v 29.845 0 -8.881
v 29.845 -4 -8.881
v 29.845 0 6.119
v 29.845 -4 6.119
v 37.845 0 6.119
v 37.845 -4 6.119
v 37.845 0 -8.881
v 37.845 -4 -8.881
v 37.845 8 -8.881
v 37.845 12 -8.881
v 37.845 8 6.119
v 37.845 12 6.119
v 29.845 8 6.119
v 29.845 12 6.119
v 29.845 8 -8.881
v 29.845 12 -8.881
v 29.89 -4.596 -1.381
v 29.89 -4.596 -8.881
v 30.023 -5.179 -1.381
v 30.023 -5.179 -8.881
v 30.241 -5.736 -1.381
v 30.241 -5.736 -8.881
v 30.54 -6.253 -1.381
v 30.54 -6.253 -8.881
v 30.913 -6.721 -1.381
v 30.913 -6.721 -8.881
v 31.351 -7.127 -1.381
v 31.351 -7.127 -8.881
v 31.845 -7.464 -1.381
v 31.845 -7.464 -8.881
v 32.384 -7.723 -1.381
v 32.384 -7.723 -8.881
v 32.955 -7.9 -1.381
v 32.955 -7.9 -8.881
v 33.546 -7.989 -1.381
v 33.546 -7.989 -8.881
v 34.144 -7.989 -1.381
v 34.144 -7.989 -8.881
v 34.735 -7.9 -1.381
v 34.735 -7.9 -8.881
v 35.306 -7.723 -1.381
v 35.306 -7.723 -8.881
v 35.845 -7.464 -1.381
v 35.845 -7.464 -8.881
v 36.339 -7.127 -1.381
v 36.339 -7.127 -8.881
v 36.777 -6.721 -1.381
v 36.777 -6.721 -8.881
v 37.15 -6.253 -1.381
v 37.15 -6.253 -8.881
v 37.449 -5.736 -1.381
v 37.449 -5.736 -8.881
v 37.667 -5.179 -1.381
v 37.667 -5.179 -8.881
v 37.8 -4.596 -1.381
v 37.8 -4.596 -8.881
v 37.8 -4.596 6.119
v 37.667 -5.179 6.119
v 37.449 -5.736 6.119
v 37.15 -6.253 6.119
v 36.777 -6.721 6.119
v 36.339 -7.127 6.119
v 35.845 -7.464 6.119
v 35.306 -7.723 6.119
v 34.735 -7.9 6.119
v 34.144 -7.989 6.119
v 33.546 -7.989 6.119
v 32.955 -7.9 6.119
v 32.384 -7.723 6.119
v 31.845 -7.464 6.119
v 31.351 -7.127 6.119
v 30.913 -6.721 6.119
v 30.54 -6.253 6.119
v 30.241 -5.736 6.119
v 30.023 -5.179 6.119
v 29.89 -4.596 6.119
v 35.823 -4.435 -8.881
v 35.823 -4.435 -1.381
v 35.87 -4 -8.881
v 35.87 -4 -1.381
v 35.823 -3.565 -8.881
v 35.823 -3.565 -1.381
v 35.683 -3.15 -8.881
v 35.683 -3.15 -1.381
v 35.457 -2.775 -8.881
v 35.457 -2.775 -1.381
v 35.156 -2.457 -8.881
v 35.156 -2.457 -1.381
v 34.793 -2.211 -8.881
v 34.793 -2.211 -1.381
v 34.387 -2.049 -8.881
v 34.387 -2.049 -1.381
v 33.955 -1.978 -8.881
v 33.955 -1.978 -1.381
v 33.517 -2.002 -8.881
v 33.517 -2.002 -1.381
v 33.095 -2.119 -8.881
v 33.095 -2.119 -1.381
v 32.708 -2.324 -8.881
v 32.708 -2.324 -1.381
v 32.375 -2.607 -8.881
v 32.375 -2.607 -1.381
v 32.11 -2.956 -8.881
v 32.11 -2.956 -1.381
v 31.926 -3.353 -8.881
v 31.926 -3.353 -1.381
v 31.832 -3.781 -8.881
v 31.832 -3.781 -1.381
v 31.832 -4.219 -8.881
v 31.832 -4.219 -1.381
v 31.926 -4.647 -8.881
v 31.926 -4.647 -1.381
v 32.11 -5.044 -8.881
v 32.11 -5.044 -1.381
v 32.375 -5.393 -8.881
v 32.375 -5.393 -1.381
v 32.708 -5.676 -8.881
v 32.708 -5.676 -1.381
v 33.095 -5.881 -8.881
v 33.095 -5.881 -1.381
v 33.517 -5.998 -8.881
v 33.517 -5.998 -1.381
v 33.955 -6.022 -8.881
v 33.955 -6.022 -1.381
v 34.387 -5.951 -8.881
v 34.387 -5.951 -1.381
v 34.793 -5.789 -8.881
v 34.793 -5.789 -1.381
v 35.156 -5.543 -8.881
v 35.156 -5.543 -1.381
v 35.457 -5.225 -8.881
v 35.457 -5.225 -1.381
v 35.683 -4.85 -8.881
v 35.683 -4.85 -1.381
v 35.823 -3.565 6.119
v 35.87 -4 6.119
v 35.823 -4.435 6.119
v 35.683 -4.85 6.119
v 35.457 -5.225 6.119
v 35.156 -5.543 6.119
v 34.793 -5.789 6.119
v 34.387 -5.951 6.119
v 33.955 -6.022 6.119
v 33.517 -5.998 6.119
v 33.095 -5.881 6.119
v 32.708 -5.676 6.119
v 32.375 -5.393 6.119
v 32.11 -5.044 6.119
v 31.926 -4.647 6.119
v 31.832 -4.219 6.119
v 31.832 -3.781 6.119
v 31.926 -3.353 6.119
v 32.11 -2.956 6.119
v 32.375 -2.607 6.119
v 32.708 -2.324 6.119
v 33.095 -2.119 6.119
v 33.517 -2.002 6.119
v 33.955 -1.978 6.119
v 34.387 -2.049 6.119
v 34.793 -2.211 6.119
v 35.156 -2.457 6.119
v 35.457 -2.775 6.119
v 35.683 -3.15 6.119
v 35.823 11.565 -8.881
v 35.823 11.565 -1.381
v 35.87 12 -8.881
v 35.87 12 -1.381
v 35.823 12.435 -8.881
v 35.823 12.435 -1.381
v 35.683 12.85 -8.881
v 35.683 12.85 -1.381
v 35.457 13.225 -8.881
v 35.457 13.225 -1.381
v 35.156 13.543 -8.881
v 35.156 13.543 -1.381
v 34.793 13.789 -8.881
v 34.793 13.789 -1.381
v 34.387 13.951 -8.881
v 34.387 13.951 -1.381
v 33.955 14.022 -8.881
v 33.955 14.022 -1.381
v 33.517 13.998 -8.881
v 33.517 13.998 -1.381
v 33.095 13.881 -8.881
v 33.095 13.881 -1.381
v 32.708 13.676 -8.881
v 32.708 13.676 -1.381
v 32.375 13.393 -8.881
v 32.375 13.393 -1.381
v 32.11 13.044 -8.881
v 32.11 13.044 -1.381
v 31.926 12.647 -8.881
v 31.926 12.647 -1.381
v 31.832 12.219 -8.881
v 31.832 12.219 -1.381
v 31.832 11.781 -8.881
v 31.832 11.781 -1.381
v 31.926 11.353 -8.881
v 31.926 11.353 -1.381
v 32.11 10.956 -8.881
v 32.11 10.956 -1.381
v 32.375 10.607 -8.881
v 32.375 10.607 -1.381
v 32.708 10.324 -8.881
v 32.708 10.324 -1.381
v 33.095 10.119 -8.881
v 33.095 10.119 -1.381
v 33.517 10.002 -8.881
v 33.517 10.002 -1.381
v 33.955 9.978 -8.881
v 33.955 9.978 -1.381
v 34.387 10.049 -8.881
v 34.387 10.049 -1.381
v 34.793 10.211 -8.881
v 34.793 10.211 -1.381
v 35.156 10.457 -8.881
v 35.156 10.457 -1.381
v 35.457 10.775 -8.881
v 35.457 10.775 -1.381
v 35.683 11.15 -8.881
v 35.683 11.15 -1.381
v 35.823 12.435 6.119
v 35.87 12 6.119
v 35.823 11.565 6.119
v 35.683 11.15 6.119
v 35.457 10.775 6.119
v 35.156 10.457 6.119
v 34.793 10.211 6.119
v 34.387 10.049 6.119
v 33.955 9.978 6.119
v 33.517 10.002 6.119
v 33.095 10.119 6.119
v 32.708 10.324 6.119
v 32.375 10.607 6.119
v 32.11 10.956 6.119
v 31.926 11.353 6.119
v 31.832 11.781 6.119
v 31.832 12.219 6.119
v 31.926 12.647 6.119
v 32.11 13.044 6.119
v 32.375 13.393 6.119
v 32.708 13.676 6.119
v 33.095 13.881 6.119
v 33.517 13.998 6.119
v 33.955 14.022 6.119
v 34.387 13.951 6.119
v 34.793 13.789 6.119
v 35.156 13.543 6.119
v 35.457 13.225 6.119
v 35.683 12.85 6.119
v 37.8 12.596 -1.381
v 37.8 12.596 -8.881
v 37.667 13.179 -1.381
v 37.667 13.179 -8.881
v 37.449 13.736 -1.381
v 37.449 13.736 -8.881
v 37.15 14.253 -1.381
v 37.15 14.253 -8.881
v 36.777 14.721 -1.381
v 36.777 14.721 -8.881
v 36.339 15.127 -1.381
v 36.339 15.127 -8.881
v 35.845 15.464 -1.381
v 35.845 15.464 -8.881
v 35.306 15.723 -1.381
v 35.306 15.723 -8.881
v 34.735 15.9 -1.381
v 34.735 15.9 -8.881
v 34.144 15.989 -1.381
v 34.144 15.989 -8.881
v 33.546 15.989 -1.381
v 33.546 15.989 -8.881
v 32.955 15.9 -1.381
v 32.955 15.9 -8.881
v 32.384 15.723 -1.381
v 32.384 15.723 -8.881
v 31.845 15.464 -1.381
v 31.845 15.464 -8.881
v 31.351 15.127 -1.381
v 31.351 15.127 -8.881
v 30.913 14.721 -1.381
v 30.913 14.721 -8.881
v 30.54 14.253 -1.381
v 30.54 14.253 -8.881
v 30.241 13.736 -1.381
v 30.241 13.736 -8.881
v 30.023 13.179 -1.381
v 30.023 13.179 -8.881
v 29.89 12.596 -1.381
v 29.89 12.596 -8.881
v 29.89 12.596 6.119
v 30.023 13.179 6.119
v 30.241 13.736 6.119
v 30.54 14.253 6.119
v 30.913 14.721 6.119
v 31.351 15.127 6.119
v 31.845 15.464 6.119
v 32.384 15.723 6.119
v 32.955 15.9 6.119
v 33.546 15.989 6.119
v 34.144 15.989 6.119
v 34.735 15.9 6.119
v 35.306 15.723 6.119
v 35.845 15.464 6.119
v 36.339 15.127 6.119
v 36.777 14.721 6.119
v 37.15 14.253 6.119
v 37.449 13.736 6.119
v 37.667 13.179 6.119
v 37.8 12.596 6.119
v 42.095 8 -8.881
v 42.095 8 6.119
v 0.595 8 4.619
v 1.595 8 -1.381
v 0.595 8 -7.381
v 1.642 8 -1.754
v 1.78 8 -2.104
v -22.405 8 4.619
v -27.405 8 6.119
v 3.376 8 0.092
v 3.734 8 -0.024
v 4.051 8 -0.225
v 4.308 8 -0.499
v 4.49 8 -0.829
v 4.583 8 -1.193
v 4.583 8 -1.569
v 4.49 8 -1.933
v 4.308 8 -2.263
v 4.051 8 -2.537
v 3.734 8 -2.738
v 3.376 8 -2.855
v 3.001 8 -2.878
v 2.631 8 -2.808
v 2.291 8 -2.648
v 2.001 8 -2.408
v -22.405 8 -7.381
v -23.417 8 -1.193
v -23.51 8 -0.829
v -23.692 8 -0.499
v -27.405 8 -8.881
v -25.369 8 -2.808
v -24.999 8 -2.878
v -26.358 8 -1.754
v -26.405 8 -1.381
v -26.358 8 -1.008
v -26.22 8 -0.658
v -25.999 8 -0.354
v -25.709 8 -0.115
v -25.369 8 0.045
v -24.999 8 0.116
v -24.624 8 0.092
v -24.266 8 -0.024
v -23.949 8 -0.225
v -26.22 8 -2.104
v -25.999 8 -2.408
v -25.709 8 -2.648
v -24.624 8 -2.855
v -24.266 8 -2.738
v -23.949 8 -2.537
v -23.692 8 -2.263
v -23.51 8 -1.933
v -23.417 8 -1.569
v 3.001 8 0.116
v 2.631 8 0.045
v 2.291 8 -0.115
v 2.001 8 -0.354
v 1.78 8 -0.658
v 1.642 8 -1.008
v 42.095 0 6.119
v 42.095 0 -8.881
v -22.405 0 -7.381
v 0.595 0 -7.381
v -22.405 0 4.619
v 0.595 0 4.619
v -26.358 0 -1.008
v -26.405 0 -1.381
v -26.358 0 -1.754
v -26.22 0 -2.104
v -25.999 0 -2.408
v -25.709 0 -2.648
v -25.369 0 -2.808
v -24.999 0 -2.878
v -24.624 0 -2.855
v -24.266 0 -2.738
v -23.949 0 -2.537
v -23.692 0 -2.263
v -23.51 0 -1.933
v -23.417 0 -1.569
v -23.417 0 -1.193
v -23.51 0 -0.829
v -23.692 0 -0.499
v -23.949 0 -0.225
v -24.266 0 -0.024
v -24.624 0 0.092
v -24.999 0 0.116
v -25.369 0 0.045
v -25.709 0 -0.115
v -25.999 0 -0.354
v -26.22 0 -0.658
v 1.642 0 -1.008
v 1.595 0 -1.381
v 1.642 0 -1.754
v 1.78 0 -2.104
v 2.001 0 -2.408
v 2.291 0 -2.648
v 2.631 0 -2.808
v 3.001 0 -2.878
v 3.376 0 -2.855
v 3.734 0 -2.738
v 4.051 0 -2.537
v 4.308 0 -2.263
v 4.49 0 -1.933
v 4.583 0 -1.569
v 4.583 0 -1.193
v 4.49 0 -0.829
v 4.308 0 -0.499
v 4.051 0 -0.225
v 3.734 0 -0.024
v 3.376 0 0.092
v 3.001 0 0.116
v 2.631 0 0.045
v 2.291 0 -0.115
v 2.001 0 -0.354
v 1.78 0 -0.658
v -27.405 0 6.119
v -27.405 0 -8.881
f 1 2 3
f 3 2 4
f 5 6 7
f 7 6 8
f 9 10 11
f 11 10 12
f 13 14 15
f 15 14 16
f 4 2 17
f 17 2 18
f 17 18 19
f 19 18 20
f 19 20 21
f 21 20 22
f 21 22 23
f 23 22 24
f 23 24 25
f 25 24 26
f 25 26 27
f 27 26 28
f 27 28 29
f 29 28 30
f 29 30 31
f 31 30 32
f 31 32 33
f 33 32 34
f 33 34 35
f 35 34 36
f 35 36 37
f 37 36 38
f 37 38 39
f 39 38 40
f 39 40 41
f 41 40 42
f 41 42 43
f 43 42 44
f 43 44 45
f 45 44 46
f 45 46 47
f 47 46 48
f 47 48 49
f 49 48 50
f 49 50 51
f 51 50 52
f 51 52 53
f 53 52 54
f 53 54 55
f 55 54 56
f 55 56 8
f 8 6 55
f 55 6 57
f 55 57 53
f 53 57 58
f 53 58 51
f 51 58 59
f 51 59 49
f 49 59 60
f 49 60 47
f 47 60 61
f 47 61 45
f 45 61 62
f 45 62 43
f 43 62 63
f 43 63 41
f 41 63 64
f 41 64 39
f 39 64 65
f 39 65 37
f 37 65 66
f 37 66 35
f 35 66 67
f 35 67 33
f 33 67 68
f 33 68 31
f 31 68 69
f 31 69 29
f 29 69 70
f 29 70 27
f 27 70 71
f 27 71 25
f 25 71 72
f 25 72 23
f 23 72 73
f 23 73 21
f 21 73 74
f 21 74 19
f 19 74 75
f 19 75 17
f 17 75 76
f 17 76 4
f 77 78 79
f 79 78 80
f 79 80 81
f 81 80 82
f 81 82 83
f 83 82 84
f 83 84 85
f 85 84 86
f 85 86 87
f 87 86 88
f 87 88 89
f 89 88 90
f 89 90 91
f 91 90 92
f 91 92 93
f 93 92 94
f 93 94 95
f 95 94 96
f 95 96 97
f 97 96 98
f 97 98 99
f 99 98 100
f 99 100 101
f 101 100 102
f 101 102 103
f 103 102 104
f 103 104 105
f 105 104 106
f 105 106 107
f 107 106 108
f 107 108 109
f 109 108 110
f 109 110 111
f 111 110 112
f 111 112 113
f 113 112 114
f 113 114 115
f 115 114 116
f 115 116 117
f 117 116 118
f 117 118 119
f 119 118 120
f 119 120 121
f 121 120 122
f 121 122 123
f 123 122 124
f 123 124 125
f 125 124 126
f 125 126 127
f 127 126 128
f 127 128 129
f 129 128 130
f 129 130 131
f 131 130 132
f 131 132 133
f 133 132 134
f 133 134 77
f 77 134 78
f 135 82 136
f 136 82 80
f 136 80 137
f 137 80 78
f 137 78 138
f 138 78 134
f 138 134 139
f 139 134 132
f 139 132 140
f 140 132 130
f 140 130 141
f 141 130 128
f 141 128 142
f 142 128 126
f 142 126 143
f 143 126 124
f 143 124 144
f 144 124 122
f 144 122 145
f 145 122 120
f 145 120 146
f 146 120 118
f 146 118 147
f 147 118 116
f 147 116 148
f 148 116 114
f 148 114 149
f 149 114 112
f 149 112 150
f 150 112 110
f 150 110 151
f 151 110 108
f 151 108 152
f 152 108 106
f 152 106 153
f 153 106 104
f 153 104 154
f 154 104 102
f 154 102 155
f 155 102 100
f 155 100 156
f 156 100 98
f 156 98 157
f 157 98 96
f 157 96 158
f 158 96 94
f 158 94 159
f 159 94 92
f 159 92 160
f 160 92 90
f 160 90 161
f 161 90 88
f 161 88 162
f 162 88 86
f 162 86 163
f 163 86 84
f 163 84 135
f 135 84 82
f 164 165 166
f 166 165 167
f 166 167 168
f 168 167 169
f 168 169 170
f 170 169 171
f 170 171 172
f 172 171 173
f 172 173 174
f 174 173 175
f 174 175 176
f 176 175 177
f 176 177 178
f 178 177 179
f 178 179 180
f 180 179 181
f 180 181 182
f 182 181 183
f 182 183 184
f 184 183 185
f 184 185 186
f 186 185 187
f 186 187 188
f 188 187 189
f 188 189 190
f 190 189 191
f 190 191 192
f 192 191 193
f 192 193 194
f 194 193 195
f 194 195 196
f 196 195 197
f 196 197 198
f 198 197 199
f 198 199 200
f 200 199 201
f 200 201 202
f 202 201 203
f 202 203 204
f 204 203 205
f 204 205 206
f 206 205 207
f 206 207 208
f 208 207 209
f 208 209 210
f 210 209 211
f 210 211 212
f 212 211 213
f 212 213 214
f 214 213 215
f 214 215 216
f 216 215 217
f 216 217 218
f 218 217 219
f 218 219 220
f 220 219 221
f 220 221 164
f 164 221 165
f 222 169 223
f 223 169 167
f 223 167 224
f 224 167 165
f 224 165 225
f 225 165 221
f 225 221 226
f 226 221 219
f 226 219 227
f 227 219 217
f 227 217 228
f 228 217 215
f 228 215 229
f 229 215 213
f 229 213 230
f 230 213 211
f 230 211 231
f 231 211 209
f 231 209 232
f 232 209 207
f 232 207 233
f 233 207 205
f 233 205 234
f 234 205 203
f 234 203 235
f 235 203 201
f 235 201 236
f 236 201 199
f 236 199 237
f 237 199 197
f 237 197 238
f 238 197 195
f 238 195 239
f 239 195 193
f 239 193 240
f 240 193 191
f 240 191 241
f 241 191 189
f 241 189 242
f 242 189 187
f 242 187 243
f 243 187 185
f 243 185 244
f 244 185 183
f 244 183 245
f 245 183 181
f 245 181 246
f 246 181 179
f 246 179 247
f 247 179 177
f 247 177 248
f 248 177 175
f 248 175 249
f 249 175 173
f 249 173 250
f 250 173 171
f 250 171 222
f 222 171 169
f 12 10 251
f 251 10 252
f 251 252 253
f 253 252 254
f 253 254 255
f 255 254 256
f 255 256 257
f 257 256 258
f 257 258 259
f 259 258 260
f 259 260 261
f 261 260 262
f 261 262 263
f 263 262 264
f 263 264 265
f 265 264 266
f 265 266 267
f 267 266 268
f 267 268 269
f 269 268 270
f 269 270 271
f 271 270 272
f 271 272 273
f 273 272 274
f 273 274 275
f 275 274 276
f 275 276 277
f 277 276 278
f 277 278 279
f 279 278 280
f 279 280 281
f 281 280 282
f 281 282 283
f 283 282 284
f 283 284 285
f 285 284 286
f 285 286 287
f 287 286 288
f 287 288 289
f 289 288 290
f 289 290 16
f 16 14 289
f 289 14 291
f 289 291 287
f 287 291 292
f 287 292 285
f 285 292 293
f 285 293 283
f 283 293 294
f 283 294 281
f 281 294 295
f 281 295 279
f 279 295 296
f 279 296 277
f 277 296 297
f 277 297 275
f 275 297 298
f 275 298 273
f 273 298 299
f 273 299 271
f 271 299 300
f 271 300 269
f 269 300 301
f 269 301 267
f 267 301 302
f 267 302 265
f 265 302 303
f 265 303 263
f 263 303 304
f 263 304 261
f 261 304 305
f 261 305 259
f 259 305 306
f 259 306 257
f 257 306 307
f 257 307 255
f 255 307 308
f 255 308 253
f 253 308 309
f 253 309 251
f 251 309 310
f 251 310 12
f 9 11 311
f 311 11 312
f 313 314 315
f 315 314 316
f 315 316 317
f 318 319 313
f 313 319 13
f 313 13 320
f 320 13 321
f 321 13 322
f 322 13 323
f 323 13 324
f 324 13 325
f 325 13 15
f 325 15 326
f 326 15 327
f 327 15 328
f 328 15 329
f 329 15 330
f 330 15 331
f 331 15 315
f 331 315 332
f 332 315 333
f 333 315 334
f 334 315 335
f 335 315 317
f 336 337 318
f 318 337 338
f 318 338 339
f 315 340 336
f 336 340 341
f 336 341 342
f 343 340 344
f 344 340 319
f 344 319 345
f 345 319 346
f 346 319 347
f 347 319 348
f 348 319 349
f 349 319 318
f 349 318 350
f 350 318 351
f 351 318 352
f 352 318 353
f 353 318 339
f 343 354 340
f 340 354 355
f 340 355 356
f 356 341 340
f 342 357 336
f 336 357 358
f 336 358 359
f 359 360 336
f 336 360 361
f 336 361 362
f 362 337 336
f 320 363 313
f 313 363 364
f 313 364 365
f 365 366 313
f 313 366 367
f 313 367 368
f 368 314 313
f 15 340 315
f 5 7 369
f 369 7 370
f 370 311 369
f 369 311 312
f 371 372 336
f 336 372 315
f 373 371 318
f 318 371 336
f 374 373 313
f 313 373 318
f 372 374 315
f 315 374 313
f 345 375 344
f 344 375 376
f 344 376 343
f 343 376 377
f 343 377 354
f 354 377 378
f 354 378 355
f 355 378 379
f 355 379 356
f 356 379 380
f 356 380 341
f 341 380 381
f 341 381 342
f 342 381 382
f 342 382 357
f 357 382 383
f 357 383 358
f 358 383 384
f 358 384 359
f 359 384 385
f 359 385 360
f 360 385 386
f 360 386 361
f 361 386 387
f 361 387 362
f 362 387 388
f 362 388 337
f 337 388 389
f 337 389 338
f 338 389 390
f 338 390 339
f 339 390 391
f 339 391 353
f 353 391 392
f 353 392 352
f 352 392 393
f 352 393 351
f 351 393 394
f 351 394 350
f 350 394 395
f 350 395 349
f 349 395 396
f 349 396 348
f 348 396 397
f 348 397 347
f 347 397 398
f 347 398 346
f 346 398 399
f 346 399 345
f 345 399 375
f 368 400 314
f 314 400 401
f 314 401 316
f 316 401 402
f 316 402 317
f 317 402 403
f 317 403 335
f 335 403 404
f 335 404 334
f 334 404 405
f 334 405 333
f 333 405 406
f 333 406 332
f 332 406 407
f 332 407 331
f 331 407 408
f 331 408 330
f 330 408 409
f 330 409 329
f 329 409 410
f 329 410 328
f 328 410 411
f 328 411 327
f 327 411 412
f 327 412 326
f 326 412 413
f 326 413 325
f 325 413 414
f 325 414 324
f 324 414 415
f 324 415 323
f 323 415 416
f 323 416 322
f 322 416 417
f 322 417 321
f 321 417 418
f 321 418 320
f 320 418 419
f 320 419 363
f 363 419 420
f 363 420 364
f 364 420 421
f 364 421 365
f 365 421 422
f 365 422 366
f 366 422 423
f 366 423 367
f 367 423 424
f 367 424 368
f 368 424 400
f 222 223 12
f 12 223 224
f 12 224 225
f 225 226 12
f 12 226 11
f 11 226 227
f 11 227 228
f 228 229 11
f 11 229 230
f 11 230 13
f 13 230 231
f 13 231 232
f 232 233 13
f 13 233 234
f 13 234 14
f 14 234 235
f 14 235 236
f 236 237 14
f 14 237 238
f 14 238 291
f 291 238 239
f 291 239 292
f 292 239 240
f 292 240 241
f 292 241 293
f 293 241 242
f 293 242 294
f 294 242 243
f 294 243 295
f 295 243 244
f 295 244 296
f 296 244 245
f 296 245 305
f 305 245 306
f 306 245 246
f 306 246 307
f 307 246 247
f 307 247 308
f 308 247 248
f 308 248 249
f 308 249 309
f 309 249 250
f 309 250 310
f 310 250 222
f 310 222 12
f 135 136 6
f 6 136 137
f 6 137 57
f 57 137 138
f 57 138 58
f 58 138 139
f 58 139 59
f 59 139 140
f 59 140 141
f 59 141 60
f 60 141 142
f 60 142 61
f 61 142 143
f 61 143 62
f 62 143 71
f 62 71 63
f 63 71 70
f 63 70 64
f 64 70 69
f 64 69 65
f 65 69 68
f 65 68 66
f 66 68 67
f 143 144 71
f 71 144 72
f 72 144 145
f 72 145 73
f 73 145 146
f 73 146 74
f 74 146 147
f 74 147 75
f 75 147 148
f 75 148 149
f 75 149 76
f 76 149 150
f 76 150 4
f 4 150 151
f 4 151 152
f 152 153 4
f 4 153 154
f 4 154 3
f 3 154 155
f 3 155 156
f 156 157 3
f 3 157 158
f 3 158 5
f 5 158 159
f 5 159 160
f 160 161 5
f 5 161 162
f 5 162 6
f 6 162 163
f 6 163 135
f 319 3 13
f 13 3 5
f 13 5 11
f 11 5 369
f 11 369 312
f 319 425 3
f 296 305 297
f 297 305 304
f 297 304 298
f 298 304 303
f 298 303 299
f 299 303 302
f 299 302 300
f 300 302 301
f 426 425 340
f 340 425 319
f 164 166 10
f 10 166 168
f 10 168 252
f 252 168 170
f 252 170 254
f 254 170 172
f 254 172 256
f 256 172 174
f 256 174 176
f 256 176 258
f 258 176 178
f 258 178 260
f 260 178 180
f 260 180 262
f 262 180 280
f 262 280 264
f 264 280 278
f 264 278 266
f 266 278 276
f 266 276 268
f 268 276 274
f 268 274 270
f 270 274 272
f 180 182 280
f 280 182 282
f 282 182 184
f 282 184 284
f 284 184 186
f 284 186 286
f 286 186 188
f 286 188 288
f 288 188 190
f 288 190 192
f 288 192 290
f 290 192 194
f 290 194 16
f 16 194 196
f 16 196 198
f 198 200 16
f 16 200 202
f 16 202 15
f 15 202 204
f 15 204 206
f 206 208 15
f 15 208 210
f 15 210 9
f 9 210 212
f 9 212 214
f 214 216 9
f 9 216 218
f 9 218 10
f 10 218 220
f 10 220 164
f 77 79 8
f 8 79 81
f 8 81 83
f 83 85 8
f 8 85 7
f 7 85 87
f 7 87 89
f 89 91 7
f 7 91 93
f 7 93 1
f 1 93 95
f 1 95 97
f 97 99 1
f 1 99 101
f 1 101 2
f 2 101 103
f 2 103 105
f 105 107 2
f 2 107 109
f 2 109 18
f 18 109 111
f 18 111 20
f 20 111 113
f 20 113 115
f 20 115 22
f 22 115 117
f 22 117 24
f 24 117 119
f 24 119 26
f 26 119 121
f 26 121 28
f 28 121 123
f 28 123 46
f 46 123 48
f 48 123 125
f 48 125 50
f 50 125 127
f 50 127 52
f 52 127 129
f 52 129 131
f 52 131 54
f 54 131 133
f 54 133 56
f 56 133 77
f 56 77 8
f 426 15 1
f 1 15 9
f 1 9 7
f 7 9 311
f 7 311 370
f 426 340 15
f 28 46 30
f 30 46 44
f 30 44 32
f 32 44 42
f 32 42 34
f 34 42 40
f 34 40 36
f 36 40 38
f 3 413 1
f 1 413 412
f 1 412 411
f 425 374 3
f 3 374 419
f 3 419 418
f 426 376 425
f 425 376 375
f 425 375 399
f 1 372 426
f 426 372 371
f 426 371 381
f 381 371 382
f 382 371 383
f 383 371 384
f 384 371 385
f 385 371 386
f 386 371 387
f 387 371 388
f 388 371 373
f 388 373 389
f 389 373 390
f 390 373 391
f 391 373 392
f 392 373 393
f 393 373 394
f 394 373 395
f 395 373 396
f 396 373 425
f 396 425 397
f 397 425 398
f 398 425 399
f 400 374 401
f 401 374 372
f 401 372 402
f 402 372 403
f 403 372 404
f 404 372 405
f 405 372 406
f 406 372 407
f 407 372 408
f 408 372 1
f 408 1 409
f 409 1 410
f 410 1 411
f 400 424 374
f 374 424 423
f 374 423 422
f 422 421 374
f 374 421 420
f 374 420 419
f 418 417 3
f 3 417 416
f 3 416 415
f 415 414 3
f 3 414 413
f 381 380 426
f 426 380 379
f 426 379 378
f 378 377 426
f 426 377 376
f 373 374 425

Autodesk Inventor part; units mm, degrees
ref_plane "YZ Plane" through (0, 0, 0) normal (1, 0, 0) x (0, 1, 0)
ref_plane "XZ Plane" through (0, 0, 0) normal (0, 1, 0) x (-1, 0, 0)
ref_plane "XY Plane" through (0, 0, 0) normal (0, 0, 1) x (1, 0, 0)
sketch "Sketch1" plane through (0, 0, 0) normal (0, 1, 0) x (-1, 0, 0)
  line L0 (-25.5949, 6.1189) -> (0.4051, 6.1189)
  line L1 (-25.5949, 6.1189) -> (0.4051, 6.1189)
  line L2 (0.4051, 6.1189) -> (0.4051, -8.8811)
  line L3 (0.4051, -8.8811) -> (-25.5949, -8.8811)
  line L4 (-25.5949, -8.8811) -> (-25.5949, 6.1189)
  line L5 (0.4051, -8.8811) -> (27.4051, -8.8811)
  line L6 (27.4051, -8.8811) -> (27.4051, 6.1189)
  line L7 (27.4051, 6.1189) -> (0.4051, 6.1189)
  line L8 (0.4051, 6.1189) -> (0.4051, -8.8811)
  line L9 (22.4051, -1.3811) -> (22.4051, -7.3811)
  line L10 (22.4051, -7.3811) -> (22.4051, 4.6189)
  line L11 (22.4051, 4.6189) -> (-0.5949, 4.6189)
  line L12 (-0.5949, 4.6189) -> (-0.5949, -7.3811)
  line L13 (-0.5949, -7.3811) -> (22.4051, -7.3811)
  line L14 (22.4051, -1.3811) -> (27.4051, -1.3811)
  circle A0 centre (24.9051, -1.3811) radius 1.5
  line L15 (-0.5949, -1.3811) -> (-5.5949, -1.3811)
  circle A1 centre (-3.0949, -1.3811) radius 1.5
  point P0 (0, 0)
  dimension "d0" = 15
  dimension "d1" = 27
  dimension "d2" = 5
  dimension "d3" = 6
  dimension "d4" = 12
  dimension "d5" = 23
  dimension "d6" = 5
  dimension "d7" = 3
  dimension "d8" = 5
  dimension "d9" = 3
extrude "Extrusion1" add sketch "Sketch1" along normal blind 8 contours L0 L2 L11 L12 L13 L3 L4 | L7 L6 L14 A0 L10 L11 L2 | L2 L13 L9 L14 A0 L6 L5
sketch "Sketch4" plane through (-27.4051, 0, 6.1189) normal (0, 0, 1) x (1, 0, 0)
  line L0 (53, 8) -> (69.5, 8)
  line L1 (69.5, 8) -> (69.5, 0)
  line L2 (69.5, 0) -> (53, 0)
  line L3 (53, 0) -> (53, 8)
  point P0 (27.4051, 0)
  dimension "d24" = 16.5
extrude "Extrusion3" add sketch "Sketch4" against normal up to surface (15 mm away)
sketch "Sketch5" plane through (-27.4051, 0, 6.1189) normal (0, 0, 1) x (1, 0, 0)
  line L0 (69.5, 0) -> (69.5, 8) projected
  line L1 (69.5, 0) -> (69.5, 8) projected
  line L2 (61.25, 4) -> (61.25, 12)
  line L3 (61.25, 12) -> (61.25, -4)
  circle A0 centre (61.25, 12) radius 2.025
  circle A1 centre (61.25, -4) radius 2.025
  circle A2 centre (61.25, 12) radius 4
  circle A3 centre (61.25, -4) radius 4
  line L4 (57.25, 12) -> (57.25, -4)
  line L5 (65.25, -4) -> (65.25, 12)
  point P0 (27.4051, 0)
  point P1 (69.5, 4)
  point P2 (69.5, 4)
  dimension "d27" = 8.25
  dimension "d28" = 8
  dimension "d29" = 16
  dimension "d30" = 4.05
  dimension "d31" = 4.05
  dimension "d32" = 8
  dimension "d33" = 8
extrude "Extrusion4" add sketch "Sketch5" against normal up to surface (15 mm away)
properties part number "servo_holder_3DPrint"
